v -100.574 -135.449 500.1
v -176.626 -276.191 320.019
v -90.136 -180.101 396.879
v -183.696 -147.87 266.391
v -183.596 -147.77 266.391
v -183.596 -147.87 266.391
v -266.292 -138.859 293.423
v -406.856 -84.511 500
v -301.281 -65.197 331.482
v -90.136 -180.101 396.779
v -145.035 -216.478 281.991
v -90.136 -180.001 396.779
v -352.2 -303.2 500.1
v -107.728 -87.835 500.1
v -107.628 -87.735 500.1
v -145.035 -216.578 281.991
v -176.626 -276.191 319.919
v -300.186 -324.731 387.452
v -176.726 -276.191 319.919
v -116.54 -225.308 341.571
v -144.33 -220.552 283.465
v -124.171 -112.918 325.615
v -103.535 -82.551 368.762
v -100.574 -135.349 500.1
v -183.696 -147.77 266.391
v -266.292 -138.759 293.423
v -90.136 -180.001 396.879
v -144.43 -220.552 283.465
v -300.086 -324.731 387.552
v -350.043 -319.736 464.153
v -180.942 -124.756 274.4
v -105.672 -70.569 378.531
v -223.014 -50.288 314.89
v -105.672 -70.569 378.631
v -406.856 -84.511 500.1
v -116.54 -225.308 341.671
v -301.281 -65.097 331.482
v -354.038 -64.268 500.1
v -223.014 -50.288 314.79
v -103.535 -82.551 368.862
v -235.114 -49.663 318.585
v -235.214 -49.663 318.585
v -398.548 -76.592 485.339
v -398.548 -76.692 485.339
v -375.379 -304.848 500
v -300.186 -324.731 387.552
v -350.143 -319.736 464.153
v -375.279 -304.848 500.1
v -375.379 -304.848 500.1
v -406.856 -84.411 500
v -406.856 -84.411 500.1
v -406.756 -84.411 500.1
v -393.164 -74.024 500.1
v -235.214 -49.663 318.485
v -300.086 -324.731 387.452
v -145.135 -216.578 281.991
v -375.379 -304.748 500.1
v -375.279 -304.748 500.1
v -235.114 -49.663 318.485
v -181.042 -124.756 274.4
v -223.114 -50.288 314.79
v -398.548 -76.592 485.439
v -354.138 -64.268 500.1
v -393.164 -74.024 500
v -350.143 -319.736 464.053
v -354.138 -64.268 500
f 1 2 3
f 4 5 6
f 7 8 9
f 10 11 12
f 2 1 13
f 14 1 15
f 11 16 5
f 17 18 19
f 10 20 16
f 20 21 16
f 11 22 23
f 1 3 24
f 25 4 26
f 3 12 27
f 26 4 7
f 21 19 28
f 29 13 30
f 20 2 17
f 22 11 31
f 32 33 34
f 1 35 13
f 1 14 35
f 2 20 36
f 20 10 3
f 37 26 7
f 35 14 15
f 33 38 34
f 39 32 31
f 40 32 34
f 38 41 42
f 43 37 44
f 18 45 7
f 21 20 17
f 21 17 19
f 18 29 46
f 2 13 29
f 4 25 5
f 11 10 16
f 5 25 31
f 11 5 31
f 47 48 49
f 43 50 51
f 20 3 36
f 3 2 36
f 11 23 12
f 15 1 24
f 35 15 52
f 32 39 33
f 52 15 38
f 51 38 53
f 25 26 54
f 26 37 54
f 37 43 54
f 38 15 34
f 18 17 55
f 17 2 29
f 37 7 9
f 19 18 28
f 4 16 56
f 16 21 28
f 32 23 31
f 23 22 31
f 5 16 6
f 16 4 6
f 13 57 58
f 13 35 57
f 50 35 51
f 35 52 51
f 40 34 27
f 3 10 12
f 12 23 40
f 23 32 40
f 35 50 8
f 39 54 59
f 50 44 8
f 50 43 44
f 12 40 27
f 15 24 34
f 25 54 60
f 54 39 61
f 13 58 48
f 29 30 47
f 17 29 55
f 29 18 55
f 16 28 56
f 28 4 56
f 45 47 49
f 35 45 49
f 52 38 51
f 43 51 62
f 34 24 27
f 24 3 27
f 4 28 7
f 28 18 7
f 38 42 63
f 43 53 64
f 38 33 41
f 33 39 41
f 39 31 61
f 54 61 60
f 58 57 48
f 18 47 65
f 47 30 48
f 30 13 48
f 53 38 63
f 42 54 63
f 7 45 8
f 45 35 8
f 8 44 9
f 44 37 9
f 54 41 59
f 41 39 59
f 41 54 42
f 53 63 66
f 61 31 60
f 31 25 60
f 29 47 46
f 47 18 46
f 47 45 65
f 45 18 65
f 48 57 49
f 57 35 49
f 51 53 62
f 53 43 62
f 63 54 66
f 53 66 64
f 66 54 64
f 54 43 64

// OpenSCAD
hull(){ translate([-124.271070615,-113.018223235,325.615034169])cube(0.1,0.1,0.1);
translate([-103.635477583,-82.6510721248,368.762183236])cube(0.1,0.1,0.1);
translate([-105.772413793,-70.6689655172,378.531034483])cube(0.1,0.1,0.1);
translate([-144.429689684,-220.552138664,283.465194297])cube(0.1,0.1,0.1);
translate([-145.134770889,-216.578044597,281.990933595])cube(0.1,0.1,0.1);
translate([-107.728085868,-87.8354203936,500.0])cube(0.1,0.1,0.1);
translate([-393.163841808,-74.1242937853,500.0])cube(0.1,0.1,0.1);
translate([-354.137931034,-64.367816092,500.0])cube(0.1,0.1,0.1);
translate([-181.042047532,-124.855575868,274.400365631])cube(0.1,0.1,0.1);
translate([-183.695652174,-147.869565217,266.391304348])cube(0.1,0.1,0.1);
translate([-235.214146658,-49.7631408177,318.484750162])cube(0.1,0.1,0.1);
translate([-223.114323259,-50.3876478318,314.789750329])cube(0.1,0.1,0.1);
translate([-176.726069246,-276.191446029,319.918533605])cube(0.1,0.1,0.1);
translate([-352.3,-303.2,500.0])cube(0.1,0.1,0.1);
translate([-100.674157303,-135.449438202,500.0])cube(0.1,0.1,0.1);
translate([-116.639848557,-225.307619498,341.571225745])cube(0.1,0.1,0.1);
translate([-90.2360876897,-180.101180438,396.779089376])cube(0.1,0.1,0.1);
translate([-375.378787879,-304.848484848,500.0])cube(0.1,0.1,0.1);
translate([-350.143171806,-319.735682819,464.052863436])cube(0.1,0.1,0.1);
translate([-300.186308492,-324.731369151,387.452339688])cube(0.1,0.1,0.1);
translate([-406.855555556,-84.5111111111,500.0])cube(0.1,0.1,0.1);
translate([-266.291946309,-138.859060403,293.422818792])cube(0.1,0.1,0.1);
translate([-398.547758285,-76.6920077973,485.339181287])cube(0.1,0.1,0.1);
translate([-301.281471917,-65.1969012266,331.481601033])cube(0.1,0.1,0.1); }
